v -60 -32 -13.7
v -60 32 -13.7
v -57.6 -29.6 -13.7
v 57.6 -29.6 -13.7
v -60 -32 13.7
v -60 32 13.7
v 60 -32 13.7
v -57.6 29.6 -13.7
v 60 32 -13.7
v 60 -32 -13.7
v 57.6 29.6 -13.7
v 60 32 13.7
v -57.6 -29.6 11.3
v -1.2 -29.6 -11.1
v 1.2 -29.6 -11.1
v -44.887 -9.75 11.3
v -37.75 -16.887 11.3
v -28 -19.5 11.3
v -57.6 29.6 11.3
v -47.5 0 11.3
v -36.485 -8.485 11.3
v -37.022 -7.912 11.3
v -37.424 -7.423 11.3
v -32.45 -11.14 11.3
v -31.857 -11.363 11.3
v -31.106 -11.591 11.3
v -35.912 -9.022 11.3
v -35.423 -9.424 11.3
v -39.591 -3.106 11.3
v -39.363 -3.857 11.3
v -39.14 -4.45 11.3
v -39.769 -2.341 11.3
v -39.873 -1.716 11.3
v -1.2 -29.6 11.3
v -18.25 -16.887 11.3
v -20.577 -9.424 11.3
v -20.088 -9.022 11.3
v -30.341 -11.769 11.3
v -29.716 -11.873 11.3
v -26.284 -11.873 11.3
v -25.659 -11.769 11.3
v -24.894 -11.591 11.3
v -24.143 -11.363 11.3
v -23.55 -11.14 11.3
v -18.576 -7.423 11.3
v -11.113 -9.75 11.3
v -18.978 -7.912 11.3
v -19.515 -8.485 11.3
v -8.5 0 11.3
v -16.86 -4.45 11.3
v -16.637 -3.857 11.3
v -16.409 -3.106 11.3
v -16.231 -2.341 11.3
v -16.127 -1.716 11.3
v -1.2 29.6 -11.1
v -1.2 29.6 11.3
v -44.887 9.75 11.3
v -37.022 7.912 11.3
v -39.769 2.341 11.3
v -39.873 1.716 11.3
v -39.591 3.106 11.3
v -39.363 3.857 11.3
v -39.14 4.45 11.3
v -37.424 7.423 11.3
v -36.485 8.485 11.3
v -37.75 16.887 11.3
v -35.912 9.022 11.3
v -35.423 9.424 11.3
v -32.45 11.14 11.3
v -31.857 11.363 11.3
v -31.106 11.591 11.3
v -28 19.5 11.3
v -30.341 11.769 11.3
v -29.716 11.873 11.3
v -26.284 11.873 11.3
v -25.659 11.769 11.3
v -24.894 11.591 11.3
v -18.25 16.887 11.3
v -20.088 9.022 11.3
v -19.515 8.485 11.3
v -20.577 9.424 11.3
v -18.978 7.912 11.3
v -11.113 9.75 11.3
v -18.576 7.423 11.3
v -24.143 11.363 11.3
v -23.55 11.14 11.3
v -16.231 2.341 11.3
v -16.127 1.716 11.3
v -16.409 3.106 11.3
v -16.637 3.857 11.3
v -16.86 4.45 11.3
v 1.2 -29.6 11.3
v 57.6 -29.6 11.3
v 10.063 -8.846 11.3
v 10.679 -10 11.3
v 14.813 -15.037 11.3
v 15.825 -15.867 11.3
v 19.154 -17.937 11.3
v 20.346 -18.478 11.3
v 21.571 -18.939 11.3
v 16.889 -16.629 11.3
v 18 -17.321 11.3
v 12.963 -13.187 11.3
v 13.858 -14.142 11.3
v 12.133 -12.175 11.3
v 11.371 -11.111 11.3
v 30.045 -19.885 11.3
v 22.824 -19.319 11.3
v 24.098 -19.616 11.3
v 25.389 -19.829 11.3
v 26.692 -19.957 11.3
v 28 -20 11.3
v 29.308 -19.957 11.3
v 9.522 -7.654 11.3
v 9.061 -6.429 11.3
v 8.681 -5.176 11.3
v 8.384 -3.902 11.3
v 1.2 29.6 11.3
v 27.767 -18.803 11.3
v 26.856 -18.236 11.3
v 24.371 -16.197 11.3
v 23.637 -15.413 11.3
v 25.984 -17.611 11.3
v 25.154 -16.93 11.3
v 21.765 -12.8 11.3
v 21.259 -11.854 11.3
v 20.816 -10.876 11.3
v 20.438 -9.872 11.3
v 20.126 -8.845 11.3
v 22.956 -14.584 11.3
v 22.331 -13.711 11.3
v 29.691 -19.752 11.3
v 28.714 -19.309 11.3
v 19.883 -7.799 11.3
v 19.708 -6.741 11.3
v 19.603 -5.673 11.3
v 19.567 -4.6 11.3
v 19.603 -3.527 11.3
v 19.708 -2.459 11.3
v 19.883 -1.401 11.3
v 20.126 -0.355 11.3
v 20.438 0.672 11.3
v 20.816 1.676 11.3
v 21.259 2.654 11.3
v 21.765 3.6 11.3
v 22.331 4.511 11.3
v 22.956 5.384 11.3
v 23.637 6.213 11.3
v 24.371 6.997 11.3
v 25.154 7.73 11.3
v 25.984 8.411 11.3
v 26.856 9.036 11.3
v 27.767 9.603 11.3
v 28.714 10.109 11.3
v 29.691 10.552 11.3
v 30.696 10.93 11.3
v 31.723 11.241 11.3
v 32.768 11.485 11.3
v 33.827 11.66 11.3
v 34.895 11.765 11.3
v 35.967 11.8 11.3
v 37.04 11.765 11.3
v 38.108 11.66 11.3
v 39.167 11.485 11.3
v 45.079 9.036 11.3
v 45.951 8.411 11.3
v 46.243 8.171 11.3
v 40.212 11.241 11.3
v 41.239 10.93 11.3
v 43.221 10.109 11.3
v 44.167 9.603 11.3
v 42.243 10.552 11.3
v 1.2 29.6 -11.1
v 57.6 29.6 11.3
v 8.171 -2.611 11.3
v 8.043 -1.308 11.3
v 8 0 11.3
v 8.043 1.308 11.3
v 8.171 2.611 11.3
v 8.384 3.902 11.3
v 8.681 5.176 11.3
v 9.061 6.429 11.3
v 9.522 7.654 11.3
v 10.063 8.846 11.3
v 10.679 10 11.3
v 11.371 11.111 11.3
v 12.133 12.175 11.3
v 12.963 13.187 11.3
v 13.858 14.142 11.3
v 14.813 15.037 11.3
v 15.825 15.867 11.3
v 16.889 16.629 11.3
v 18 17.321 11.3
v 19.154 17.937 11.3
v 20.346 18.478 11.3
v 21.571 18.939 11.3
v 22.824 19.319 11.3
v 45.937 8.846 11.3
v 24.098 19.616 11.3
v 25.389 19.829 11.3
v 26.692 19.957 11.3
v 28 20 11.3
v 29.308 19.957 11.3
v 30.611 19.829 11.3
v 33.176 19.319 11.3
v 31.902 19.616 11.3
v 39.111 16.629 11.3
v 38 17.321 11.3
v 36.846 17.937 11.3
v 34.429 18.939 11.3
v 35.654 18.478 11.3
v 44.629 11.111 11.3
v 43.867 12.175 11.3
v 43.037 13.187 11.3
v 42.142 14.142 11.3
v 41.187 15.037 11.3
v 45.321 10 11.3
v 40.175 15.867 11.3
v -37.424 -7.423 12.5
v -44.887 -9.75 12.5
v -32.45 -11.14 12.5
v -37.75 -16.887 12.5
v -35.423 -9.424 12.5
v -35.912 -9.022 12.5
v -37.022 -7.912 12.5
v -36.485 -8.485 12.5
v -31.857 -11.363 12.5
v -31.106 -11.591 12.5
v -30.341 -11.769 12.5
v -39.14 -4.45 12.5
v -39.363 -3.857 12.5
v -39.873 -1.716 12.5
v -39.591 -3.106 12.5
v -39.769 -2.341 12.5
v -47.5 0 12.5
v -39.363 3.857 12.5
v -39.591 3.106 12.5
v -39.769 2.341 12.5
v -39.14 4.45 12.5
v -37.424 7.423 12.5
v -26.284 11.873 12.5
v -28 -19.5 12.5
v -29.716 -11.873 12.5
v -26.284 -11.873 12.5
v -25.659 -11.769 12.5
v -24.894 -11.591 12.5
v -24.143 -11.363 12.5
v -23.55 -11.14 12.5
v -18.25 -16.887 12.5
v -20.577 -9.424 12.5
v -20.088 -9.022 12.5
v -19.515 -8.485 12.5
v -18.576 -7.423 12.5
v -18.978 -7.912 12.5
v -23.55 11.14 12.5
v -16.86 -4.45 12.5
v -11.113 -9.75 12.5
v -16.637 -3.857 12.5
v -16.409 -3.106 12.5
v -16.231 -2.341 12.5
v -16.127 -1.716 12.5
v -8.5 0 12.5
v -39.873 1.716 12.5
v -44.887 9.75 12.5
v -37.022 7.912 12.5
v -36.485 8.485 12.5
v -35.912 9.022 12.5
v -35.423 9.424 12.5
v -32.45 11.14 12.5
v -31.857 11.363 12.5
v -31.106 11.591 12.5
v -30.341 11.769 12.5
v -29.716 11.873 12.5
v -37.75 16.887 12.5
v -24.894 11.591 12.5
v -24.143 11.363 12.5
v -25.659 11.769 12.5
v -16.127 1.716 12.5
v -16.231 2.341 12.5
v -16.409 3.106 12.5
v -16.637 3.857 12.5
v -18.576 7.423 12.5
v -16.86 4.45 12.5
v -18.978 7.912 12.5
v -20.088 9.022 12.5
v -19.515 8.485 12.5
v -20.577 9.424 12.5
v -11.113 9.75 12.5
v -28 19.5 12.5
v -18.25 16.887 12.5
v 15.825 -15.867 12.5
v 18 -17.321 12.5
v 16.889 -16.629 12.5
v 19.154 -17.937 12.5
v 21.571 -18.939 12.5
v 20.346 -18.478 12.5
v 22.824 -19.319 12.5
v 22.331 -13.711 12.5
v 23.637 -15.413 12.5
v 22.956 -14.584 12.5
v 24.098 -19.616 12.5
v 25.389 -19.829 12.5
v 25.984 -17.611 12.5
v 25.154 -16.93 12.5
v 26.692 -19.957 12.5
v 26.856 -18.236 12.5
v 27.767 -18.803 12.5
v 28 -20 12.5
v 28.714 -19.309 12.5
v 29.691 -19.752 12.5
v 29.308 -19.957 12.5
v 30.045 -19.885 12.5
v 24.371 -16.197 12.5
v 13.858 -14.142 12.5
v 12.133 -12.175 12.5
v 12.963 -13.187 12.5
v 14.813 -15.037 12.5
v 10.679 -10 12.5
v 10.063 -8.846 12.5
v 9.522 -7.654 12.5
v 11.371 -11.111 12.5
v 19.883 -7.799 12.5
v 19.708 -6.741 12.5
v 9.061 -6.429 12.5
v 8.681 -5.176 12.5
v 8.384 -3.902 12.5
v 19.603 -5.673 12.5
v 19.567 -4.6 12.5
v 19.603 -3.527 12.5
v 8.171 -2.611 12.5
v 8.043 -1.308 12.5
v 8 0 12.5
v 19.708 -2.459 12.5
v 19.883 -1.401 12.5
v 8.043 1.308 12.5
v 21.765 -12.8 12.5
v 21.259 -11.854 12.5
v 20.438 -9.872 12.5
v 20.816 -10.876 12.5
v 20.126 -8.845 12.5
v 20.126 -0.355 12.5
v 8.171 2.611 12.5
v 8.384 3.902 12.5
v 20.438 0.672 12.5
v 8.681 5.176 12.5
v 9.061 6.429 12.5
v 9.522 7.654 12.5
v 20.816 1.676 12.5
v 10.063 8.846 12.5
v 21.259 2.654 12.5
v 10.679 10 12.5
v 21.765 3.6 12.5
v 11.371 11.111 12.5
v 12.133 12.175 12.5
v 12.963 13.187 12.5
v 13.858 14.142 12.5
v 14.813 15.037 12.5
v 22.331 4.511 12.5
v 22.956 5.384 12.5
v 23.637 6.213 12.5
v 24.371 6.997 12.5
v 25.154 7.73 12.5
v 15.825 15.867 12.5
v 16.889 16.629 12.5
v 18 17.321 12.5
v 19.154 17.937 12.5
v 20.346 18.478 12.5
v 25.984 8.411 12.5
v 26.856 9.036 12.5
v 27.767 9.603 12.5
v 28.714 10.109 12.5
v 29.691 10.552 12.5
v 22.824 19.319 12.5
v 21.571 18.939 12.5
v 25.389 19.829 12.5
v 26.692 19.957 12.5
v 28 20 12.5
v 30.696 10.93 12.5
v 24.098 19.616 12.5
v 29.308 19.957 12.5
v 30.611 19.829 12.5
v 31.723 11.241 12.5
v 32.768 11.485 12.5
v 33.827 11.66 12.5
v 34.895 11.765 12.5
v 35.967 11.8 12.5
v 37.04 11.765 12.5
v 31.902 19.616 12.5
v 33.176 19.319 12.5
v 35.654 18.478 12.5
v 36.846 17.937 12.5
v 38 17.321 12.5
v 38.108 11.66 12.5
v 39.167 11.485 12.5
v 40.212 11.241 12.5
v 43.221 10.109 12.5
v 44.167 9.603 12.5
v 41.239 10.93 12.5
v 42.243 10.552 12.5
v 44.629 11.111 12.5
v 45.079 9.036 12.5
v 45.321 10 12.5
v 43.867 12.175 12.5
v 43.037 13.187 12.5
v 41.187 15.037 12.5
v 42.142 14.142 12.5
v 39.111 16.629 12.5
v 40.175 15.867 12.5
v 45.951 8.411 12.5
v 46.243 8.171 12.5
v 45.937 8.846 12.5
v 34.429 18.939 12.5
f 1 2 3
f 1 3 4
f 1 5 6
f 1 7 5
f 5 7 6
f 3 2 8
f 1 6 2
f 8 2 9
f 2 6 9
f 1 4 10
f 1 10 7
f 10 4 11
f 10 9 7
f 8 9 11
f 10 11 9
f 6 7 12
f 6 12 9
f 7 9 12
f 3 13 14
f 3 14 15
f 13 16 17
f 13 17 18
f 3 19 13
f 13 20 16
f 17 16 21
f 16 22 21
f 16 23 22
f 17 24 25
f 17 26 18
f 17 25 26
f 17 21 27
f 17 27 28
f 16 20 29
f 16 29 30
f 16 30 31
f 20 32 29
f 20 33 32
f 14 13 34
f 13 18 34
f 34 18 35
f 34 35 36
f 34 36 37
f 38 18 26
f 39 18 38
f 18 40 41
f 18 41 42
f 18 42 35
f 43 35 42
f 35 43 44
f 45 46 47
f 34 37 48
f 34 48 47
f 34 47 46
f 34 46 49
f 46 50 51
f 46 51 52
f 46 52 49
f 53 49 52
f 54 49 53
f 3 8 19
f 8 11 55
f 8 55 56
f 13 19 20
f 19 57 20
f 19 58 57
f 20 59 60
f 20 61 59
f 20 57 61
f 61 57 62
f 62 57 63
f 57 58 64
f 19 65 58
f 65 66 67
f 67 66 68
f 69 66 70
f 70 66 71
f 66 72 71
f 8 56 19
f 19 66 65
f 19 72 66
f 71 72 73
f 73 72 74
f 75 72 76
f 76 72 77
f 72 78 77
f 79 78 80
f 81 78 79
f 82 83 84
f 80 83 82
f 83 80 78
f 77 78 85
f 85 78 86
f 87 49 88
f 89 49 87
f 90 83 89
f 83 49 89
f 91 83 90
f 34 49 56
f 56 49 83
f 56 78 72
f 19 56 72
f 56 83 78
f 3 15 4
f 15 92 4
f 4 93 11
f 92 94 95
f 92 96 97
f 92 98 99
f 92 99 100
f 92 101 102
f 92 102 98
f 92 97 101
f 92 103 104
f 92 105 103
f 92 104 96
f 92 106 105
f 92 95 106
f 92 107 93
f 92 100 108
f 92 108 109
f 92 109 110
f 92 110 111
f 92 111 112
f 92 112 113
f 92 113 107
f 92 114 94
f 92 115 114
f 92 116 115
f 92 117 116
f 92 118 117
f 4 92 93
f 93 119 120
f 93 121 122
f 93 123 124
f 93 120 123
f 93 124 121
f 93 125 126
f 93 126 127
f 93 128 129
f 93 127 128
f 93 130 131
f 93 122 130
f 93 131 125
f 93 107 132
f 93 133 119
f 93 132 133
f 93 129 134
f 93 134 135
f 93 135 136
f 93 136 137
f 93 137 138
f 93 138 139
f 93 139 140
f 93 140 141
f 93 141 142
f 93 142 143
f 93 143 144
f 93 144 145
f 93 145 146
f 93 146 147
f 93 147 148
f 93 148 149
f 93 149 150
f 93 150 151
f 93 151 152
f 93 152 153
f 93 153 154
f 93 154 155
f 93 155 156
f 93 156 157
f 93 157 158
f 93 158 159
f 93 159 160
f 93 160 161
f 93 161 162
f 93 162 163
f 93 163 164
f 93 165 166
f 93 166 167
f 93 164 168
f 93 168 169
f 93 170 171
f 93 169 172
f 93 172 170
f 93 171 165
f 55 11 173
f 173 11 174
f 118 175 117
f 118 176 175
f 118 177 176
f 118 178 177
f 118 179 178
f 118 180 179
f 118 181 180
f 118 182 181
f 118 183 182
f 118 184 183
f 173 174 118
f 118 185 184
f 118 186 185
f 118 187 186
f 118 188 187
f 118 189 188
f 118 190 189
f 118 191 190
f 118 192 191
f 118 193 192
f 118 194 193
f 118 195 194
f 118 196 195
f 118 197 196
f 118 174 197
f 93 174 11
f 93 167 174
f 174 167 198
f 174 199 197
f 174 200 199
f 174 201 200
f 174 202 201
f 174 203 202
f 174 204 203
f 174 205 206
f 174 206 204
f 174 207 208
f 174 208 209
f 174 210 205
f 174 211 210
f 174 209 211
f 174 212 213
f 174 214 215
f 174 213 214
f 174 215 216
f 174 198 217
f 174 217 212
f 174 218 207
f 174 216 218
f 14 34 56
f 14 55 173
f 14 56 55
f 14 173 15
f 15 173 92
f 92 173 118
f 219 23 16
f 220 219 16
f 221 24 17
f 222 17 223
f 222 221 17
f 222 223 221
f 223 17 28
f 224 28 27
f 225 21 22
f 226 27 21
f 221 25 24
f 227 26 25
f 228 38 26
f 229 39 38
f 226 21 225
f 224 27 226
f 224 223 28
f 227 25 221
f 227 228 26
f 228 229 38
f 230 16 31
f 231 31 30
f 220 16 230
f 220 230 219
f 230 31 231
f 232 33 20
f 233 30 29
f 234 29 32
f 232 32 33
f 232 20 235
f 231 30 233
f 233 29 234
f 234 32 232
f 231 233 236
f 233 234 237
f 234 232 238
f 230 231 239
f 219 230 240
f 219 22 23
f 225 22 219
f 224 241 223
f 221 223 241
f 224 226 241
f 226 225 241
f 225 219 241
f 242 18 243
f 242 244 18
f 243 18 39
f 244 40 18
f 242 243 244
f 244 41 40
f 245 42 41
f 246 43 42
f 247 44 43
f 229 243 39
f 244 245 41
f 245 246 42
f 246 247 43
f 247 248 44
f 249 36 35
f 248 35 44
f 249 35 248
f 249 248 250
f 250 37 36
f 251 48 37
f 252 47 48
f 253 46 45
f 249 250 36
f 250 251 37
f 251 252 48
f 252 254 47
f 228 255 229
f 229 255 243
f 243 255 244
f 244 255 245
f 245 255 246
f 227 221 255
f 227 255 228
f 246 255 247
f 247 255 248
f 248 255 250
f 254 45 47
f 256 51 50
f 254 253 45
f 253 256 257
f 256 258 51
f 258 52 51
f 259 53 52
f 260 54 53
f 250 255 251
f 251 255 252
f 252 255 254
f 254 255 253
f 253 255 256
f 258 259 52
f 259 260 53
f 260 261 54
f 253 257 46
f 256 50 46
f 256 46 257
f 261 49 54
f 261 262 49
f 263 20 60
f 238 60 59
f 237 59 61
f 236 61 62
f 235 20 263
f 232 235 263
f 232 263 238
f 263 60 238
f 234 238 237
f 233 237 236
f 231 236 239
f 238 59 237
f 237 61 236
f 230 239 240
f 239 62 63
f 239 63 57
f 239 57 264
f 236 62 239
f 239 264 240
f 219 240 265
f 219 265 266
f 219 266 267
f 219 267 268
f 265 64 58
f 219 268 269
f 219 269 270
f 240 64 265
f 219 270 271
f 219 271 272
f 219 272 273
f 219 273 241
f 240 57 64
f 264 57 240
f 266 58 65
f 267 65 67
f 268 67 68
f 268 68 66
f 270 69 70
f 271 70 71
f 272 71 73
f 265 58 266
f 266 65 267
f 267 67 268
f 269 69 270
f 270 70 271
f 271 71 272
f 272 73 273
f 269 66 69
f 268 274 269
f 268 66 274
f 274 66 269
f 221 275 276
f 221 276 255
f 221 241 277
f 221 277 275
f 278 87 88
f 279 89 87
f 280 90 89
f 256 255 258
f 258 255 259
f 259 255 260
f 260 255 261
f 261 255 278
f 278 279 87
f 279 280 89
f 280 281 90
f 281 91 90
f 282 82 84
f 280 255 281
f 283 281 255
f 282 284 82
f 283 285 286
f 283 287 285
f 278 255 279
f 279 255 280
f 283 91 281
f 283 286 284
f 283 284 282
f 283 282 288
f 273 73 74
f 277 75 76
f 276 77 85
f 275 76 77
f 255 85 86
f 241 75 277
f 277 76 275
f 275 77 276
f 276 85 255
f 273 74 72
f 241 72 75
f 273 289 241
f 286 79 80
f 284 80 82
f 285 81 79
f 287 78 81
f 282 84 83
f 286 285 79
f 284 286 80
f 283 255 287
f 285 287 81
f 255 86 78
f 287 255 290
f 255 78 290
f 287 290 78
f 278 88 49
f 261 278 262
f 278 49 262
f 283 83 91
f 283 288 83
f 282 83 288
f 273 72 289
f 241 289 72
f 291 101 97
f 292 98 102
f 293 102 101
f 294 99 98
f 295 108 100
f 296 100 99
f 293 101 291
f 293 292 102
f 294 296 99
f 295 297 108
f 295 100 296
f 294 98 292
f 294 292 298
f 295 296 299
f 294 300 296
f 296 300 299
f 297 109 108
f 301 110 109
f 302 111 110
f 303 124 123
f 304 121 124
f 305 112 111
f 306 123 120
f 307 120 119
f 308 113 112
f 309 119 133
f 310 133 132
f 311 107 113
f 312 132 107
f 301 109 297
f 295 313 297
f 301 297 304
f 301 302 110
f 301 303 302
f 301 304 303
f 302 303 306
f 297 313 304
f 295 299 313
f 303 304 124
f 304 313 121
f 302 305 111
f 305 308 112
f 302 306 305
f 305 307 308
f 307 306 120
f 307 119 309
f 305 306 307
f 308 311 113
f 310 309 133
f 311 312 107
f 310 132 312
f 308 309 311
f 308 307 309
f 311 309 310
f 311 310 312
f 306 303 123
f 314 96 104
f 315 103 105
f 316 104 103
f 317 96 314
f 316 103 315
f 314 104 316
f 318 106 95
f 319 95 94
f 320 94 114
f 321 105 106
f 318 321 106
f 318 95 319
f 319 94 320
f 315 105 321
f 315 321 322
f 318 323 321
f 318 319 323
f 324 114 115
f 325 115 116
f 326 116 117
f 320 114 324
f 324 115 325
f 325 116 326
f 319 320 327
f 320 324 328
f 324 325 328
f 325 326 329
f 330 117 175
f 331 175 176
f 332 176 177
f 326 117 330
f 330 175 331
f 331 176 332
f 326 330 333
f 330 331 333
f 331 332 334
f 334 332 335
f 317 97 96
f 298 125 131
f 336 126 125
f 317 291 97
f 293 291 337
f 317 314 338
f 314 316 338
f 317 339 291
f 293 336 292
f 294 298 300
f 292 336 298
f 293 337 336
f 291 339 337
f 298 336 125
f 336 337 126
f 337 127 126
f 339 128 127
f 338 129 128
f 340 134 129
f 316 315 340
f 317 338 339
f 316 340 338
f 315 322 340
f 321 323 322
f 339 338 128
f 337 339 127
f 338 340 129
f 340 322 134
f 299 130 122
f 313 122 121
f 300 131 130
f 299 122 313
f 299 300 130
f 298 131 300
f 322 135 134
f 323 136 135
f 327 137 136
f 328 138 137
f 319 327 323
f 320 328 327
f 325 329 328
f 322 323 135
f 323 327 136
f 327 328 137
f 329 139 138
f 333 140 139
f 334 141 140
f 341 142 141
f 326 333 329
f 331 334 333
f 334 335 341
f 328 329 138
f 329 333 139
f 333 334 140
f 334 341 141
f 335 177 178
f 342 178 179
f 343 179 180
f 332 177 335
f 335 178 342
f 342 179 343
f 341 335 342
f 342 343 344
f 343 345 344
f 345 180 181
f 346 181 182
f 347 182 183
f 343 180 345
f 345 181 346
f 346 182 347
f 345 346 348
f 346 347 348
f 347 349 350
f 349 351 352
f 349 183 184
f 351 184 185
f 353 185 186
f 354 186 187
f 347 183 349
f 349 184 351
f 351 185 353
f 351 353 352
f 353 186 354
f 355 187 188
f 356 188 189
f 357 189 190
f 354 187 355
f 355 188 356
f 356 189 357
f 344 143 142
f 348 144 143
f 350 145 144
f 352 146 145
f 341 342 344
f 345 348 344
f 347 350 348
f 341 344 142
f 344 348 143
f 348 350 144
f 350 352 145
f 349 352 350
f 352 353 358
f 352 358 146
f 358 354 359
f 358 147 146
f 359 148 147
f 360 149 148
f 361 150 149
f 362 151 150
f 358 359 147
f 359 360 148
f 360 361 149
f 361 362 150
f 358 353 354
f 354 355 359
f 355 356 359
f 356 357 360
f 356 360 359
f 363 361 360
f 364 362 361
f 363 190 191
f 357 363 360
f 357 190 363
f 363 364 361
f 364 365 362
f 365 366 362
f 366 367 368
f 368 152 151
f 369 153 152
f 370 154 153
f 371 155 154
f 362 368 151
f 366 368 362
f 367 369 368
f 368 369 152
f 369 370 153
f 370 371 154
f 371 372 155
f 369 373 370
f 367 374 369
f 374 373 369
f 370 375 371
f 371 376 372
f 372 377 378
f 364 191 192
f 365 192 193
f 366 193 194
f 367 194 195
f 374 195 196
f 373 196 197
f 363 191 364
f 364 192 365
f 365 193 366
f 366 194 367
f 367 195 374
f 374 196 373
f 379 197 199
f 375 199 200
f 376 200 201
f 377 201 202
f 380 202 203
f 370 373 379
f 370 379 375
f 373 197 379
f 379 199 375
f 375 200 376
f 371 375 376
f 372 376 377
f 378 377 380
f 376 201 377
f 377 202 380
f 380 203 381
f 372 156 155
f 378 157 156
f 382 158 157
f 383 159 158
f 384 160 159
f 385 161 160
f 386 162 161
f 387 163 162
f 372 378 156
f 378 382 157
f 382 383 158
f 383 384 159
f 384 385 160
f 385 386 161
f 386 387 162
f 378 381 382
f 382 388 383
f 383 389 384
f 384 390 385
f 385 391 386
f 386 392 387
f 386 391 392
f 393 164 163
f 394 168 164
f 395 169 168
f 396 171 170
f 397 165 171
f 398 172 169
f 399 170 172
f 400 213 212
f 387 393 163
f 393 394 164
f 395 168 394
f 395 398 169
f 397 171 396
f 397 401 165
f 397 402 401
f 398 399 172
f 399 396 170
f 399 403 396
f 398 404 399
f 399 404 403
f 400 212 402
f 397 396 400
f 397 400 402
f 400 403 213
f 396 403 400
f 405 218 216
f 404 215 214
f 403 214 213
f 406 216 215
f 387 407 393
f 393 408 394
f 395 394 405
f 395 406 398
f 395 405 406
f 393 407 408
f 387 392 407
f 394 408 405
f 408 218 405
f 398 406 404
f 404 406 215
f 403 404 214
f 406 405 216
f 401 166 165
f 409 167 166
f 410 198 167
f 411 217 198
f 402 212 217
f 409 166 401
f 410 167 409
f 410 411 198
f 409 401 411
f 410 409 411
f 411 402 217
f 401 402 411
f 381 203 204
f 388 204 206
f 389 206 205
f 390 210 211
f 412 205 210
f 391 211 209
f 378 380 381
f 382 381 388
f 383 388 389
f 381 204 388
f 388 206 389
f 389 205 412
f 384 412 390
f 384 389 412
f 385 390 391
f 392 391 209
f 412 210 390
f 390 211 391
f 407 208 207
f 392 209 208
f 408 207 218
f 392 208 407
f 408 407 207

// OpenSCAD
// file: icons.scad
// 2D icon profiles. Both are sized to fit within a circle of diameter d.

module sun_2d(d) {
    r    = d / 2;
    core = r * 0.60;
    union() {
        circle(r = core);
        for (i = [0 : 11])
            rotate(i * 30)
                translate([0, core - 0.5])
                    polygon([[-r * 0.09, 0],
                             [ r * 0.09, 0],
                             [ 0,        r * 0.40]]);
    }
}

module moon_2d(d) {
    r = d / 2;
    // A fat crescent. Thin crescents light unevenly and print poorly at this scale.
    rotate(-30)
        difference() {
            circle(r = r);
            translate([r * 0.46, 0]) circle(r = r * 0.82);
        }
}
// file: params.scad
// All dimensions in millimetres.
// Thicknesses are whole multiples of a 0.4 mm nozzle.

// --- Apertures -------------------------------------------------------------
aperture_d    = 40;    // diameter of the circle each icon fits inside
face_t        = 1.2;   // translucent face left at the icons (3 x 0.4)

// --- Shell -----------------------------------------------------------------
wall          = 2.4;   // outer wall, opaque at this thickness (6 x 0.4)
divider_t     = 2.4;   // wall between the two chambers
chamber_depth = 25;    // pixel-to-face standoff; governs how evenly light spreads
aperture_gap  = 16;    // flat space between the two aperture circles
margin        = 12;    // border around the apertures
backplate_t   = 2.4;

// --- Back plate features, slot open to the plate edge ------------------------
cable_slot_w  = 8.0;   // deliberately oversized; no tolerance to miss
wire_notch_w  = 6.0;   // gap cut in the lip on the divider line, for wiring

// --- Fit -------------------------------------------------------------------
clearance     = 0.6;   // total lip clearance (0.3 mm per side against cavity)
divider_gap   = 0.2;   // divider stops short of the lip; keeps the two apart

$fn = 96;

// --- Derived ---------------------------------------------------------------
body_w = 2 * margin + 2 * aperture_d + aperture_gap;   // 120
body_h = 2 * margin + aperture_d;                      // 64
body_d = wall + chamber_depth;                         // 27.4
ap_x   = (aperture_d + aperture_gap) / 2;              // 28, aperture centre offset

// The lip is the raised pad on the back plate that drops into the body's open
// back. It is the cavity footprint less the fit clearance.
lip_w  = body_w - 2 * wall - clearance;                // 114.6
lip_h  = body_h - 2 * wall - clearance;                // 58.6

// The divider runs from the inner surface of the front wall back to just short
// of the lip's top face, so the two can never fight for the same space:
//   front face  =  body_d/2 - wall                       =  13.7 - 2.4 =  11.3
//   rear face   = -body_d/2 + backplate_t + divider_gap  = -13.7 + 2.6 = -11.1
//   height      = body_d - wall - backplate_t - divider_gap            =  22.4
divider_h = body_d - wall - backplate_t - divider_gap; // 22.4

// Cable slot centre, off to the moon side of the plate.
cable_slot_x = body_w * 0.28;                          // 33.6
cable_slot_y = -body_h * 0.38;                         // -24.32

// --- Sanity ----------------------------------------------------------------
assert(divider_t <= aperture_gap,
       "Divider is wider than the gap between apertures; they would overlap.");
assert(face_t < wall,
       "Face must be thinner than the wall, or there is nothing left to thin.");
assert(face_t >= 0.8,
       "A face thinner than 0.8 mm will not print reliably and may be translucent enough to show the pixel as a hot spot.");
assert(divider_h > 0 && divider_gap > 0,
       "Divider must stop clear of the back plate lip, or the box will not close.");
// The wire notch is why the two chambers are not hermetically sealed. The board
// and the cable slot both live in the moon chamber (x > 0), so three wires must
// reach the sun pixel and three more return from it. They cross under the
// divider through this gap in the lip. It is cut in the lip and NOT in the
// divider: the divider stays solid, which keeps the light path between chambers
// as long as possible — around the back, ~25 mm behind the faces.
assert(wire_notch_w > 0 && wire_notch_w < lip_h,
       "Wire notch must be positive and narrower than the lip is long, or there is no lip left to locate the back plate.");
assert(wire_notch_w / 2 + cable_slot_w / 2 < cable_slot_x,
       "Wire notch and cable slot overlap; the lip would be cut away between them.");
// main file
include <params.scad>
use <icons.scad>

// The body is an open-backed box with a solid front wall. At each icon the
// front wall is thinned from behind, from `wall` down to `face_t`, leaving a
// translucent window in the shape of the icon while the rest of the panel
// stays opaque. A full-depth divider stops one lit icon bleeding into the
// other.
//
// Note there is no separate "restore the face" step: the face is simply the
// material left behind by an incomplete cut. Cutting through and adding the
// face back would create coincident surfaces and risk a non-manifold export.

// s = -1 is the sun (left), s = +1 is the moon (right).
module icon(s, d) {
    if (s < 0) sun_2d(d); else moon_2d(d);
}

module body() {
    difference() {
        union() {
            // Outer shell: solid front wall, open back.
            difference() {
                cube([body_w, body_h, body_d], center = true);
                // Cavity. Offsetting by -wall puts its front face exactly at
                // the inner surface of the front wall, and lets it run out
                // past the open back.
                translate([0, 0, -wall])
                    cube([body_w - 2 * wall,
                          body_h - 2 * wall,
                          body_d], center = true);
            }
            // Divider, from the inner surface of the front wall back to just
            // short of the back plate's lip. It must NOT run to the open back
            // edge: the lip drops into that same volume for backplate_t, and a
            // full-depth divider would collide with it and hold the box open.
            //
            //   front face  =  body_d/2 - wall                      =  11.3
            //   rear face   = -body_d/2 + backplate_t + divider_gap = -11.1
            //   height      = divider_h                             =  22.4
            //   centre z    = (11.3 + -11.1) / 2                    =   0.1
            //             = (backplate_t + divider_gap - wall) / 2
            //
            // This is the feature that cannot be fixed later.
            translate([0, 0, (backplate_t + divider_gap - wall) / 2])
                cube([divider_t, body_h - 2 * wall, divider_h],
                     center = true);
        }

        // Thin the front wall to face_t at each icon, cutting from behind.
        // The cut is deliberately run 1 mm into the cavity so its back face
        // is not coplanar with the cavity's front face.
        for (s = [-1, 1])
            translate([s * ap_x, 0,
                       body_d / 2 - face_t - (wall - face_t + 1) / 2])
                linear_extrude(height = wall - face_t + 1, center = true)
                    icon(s, aperture_d);
    }
}

body();
